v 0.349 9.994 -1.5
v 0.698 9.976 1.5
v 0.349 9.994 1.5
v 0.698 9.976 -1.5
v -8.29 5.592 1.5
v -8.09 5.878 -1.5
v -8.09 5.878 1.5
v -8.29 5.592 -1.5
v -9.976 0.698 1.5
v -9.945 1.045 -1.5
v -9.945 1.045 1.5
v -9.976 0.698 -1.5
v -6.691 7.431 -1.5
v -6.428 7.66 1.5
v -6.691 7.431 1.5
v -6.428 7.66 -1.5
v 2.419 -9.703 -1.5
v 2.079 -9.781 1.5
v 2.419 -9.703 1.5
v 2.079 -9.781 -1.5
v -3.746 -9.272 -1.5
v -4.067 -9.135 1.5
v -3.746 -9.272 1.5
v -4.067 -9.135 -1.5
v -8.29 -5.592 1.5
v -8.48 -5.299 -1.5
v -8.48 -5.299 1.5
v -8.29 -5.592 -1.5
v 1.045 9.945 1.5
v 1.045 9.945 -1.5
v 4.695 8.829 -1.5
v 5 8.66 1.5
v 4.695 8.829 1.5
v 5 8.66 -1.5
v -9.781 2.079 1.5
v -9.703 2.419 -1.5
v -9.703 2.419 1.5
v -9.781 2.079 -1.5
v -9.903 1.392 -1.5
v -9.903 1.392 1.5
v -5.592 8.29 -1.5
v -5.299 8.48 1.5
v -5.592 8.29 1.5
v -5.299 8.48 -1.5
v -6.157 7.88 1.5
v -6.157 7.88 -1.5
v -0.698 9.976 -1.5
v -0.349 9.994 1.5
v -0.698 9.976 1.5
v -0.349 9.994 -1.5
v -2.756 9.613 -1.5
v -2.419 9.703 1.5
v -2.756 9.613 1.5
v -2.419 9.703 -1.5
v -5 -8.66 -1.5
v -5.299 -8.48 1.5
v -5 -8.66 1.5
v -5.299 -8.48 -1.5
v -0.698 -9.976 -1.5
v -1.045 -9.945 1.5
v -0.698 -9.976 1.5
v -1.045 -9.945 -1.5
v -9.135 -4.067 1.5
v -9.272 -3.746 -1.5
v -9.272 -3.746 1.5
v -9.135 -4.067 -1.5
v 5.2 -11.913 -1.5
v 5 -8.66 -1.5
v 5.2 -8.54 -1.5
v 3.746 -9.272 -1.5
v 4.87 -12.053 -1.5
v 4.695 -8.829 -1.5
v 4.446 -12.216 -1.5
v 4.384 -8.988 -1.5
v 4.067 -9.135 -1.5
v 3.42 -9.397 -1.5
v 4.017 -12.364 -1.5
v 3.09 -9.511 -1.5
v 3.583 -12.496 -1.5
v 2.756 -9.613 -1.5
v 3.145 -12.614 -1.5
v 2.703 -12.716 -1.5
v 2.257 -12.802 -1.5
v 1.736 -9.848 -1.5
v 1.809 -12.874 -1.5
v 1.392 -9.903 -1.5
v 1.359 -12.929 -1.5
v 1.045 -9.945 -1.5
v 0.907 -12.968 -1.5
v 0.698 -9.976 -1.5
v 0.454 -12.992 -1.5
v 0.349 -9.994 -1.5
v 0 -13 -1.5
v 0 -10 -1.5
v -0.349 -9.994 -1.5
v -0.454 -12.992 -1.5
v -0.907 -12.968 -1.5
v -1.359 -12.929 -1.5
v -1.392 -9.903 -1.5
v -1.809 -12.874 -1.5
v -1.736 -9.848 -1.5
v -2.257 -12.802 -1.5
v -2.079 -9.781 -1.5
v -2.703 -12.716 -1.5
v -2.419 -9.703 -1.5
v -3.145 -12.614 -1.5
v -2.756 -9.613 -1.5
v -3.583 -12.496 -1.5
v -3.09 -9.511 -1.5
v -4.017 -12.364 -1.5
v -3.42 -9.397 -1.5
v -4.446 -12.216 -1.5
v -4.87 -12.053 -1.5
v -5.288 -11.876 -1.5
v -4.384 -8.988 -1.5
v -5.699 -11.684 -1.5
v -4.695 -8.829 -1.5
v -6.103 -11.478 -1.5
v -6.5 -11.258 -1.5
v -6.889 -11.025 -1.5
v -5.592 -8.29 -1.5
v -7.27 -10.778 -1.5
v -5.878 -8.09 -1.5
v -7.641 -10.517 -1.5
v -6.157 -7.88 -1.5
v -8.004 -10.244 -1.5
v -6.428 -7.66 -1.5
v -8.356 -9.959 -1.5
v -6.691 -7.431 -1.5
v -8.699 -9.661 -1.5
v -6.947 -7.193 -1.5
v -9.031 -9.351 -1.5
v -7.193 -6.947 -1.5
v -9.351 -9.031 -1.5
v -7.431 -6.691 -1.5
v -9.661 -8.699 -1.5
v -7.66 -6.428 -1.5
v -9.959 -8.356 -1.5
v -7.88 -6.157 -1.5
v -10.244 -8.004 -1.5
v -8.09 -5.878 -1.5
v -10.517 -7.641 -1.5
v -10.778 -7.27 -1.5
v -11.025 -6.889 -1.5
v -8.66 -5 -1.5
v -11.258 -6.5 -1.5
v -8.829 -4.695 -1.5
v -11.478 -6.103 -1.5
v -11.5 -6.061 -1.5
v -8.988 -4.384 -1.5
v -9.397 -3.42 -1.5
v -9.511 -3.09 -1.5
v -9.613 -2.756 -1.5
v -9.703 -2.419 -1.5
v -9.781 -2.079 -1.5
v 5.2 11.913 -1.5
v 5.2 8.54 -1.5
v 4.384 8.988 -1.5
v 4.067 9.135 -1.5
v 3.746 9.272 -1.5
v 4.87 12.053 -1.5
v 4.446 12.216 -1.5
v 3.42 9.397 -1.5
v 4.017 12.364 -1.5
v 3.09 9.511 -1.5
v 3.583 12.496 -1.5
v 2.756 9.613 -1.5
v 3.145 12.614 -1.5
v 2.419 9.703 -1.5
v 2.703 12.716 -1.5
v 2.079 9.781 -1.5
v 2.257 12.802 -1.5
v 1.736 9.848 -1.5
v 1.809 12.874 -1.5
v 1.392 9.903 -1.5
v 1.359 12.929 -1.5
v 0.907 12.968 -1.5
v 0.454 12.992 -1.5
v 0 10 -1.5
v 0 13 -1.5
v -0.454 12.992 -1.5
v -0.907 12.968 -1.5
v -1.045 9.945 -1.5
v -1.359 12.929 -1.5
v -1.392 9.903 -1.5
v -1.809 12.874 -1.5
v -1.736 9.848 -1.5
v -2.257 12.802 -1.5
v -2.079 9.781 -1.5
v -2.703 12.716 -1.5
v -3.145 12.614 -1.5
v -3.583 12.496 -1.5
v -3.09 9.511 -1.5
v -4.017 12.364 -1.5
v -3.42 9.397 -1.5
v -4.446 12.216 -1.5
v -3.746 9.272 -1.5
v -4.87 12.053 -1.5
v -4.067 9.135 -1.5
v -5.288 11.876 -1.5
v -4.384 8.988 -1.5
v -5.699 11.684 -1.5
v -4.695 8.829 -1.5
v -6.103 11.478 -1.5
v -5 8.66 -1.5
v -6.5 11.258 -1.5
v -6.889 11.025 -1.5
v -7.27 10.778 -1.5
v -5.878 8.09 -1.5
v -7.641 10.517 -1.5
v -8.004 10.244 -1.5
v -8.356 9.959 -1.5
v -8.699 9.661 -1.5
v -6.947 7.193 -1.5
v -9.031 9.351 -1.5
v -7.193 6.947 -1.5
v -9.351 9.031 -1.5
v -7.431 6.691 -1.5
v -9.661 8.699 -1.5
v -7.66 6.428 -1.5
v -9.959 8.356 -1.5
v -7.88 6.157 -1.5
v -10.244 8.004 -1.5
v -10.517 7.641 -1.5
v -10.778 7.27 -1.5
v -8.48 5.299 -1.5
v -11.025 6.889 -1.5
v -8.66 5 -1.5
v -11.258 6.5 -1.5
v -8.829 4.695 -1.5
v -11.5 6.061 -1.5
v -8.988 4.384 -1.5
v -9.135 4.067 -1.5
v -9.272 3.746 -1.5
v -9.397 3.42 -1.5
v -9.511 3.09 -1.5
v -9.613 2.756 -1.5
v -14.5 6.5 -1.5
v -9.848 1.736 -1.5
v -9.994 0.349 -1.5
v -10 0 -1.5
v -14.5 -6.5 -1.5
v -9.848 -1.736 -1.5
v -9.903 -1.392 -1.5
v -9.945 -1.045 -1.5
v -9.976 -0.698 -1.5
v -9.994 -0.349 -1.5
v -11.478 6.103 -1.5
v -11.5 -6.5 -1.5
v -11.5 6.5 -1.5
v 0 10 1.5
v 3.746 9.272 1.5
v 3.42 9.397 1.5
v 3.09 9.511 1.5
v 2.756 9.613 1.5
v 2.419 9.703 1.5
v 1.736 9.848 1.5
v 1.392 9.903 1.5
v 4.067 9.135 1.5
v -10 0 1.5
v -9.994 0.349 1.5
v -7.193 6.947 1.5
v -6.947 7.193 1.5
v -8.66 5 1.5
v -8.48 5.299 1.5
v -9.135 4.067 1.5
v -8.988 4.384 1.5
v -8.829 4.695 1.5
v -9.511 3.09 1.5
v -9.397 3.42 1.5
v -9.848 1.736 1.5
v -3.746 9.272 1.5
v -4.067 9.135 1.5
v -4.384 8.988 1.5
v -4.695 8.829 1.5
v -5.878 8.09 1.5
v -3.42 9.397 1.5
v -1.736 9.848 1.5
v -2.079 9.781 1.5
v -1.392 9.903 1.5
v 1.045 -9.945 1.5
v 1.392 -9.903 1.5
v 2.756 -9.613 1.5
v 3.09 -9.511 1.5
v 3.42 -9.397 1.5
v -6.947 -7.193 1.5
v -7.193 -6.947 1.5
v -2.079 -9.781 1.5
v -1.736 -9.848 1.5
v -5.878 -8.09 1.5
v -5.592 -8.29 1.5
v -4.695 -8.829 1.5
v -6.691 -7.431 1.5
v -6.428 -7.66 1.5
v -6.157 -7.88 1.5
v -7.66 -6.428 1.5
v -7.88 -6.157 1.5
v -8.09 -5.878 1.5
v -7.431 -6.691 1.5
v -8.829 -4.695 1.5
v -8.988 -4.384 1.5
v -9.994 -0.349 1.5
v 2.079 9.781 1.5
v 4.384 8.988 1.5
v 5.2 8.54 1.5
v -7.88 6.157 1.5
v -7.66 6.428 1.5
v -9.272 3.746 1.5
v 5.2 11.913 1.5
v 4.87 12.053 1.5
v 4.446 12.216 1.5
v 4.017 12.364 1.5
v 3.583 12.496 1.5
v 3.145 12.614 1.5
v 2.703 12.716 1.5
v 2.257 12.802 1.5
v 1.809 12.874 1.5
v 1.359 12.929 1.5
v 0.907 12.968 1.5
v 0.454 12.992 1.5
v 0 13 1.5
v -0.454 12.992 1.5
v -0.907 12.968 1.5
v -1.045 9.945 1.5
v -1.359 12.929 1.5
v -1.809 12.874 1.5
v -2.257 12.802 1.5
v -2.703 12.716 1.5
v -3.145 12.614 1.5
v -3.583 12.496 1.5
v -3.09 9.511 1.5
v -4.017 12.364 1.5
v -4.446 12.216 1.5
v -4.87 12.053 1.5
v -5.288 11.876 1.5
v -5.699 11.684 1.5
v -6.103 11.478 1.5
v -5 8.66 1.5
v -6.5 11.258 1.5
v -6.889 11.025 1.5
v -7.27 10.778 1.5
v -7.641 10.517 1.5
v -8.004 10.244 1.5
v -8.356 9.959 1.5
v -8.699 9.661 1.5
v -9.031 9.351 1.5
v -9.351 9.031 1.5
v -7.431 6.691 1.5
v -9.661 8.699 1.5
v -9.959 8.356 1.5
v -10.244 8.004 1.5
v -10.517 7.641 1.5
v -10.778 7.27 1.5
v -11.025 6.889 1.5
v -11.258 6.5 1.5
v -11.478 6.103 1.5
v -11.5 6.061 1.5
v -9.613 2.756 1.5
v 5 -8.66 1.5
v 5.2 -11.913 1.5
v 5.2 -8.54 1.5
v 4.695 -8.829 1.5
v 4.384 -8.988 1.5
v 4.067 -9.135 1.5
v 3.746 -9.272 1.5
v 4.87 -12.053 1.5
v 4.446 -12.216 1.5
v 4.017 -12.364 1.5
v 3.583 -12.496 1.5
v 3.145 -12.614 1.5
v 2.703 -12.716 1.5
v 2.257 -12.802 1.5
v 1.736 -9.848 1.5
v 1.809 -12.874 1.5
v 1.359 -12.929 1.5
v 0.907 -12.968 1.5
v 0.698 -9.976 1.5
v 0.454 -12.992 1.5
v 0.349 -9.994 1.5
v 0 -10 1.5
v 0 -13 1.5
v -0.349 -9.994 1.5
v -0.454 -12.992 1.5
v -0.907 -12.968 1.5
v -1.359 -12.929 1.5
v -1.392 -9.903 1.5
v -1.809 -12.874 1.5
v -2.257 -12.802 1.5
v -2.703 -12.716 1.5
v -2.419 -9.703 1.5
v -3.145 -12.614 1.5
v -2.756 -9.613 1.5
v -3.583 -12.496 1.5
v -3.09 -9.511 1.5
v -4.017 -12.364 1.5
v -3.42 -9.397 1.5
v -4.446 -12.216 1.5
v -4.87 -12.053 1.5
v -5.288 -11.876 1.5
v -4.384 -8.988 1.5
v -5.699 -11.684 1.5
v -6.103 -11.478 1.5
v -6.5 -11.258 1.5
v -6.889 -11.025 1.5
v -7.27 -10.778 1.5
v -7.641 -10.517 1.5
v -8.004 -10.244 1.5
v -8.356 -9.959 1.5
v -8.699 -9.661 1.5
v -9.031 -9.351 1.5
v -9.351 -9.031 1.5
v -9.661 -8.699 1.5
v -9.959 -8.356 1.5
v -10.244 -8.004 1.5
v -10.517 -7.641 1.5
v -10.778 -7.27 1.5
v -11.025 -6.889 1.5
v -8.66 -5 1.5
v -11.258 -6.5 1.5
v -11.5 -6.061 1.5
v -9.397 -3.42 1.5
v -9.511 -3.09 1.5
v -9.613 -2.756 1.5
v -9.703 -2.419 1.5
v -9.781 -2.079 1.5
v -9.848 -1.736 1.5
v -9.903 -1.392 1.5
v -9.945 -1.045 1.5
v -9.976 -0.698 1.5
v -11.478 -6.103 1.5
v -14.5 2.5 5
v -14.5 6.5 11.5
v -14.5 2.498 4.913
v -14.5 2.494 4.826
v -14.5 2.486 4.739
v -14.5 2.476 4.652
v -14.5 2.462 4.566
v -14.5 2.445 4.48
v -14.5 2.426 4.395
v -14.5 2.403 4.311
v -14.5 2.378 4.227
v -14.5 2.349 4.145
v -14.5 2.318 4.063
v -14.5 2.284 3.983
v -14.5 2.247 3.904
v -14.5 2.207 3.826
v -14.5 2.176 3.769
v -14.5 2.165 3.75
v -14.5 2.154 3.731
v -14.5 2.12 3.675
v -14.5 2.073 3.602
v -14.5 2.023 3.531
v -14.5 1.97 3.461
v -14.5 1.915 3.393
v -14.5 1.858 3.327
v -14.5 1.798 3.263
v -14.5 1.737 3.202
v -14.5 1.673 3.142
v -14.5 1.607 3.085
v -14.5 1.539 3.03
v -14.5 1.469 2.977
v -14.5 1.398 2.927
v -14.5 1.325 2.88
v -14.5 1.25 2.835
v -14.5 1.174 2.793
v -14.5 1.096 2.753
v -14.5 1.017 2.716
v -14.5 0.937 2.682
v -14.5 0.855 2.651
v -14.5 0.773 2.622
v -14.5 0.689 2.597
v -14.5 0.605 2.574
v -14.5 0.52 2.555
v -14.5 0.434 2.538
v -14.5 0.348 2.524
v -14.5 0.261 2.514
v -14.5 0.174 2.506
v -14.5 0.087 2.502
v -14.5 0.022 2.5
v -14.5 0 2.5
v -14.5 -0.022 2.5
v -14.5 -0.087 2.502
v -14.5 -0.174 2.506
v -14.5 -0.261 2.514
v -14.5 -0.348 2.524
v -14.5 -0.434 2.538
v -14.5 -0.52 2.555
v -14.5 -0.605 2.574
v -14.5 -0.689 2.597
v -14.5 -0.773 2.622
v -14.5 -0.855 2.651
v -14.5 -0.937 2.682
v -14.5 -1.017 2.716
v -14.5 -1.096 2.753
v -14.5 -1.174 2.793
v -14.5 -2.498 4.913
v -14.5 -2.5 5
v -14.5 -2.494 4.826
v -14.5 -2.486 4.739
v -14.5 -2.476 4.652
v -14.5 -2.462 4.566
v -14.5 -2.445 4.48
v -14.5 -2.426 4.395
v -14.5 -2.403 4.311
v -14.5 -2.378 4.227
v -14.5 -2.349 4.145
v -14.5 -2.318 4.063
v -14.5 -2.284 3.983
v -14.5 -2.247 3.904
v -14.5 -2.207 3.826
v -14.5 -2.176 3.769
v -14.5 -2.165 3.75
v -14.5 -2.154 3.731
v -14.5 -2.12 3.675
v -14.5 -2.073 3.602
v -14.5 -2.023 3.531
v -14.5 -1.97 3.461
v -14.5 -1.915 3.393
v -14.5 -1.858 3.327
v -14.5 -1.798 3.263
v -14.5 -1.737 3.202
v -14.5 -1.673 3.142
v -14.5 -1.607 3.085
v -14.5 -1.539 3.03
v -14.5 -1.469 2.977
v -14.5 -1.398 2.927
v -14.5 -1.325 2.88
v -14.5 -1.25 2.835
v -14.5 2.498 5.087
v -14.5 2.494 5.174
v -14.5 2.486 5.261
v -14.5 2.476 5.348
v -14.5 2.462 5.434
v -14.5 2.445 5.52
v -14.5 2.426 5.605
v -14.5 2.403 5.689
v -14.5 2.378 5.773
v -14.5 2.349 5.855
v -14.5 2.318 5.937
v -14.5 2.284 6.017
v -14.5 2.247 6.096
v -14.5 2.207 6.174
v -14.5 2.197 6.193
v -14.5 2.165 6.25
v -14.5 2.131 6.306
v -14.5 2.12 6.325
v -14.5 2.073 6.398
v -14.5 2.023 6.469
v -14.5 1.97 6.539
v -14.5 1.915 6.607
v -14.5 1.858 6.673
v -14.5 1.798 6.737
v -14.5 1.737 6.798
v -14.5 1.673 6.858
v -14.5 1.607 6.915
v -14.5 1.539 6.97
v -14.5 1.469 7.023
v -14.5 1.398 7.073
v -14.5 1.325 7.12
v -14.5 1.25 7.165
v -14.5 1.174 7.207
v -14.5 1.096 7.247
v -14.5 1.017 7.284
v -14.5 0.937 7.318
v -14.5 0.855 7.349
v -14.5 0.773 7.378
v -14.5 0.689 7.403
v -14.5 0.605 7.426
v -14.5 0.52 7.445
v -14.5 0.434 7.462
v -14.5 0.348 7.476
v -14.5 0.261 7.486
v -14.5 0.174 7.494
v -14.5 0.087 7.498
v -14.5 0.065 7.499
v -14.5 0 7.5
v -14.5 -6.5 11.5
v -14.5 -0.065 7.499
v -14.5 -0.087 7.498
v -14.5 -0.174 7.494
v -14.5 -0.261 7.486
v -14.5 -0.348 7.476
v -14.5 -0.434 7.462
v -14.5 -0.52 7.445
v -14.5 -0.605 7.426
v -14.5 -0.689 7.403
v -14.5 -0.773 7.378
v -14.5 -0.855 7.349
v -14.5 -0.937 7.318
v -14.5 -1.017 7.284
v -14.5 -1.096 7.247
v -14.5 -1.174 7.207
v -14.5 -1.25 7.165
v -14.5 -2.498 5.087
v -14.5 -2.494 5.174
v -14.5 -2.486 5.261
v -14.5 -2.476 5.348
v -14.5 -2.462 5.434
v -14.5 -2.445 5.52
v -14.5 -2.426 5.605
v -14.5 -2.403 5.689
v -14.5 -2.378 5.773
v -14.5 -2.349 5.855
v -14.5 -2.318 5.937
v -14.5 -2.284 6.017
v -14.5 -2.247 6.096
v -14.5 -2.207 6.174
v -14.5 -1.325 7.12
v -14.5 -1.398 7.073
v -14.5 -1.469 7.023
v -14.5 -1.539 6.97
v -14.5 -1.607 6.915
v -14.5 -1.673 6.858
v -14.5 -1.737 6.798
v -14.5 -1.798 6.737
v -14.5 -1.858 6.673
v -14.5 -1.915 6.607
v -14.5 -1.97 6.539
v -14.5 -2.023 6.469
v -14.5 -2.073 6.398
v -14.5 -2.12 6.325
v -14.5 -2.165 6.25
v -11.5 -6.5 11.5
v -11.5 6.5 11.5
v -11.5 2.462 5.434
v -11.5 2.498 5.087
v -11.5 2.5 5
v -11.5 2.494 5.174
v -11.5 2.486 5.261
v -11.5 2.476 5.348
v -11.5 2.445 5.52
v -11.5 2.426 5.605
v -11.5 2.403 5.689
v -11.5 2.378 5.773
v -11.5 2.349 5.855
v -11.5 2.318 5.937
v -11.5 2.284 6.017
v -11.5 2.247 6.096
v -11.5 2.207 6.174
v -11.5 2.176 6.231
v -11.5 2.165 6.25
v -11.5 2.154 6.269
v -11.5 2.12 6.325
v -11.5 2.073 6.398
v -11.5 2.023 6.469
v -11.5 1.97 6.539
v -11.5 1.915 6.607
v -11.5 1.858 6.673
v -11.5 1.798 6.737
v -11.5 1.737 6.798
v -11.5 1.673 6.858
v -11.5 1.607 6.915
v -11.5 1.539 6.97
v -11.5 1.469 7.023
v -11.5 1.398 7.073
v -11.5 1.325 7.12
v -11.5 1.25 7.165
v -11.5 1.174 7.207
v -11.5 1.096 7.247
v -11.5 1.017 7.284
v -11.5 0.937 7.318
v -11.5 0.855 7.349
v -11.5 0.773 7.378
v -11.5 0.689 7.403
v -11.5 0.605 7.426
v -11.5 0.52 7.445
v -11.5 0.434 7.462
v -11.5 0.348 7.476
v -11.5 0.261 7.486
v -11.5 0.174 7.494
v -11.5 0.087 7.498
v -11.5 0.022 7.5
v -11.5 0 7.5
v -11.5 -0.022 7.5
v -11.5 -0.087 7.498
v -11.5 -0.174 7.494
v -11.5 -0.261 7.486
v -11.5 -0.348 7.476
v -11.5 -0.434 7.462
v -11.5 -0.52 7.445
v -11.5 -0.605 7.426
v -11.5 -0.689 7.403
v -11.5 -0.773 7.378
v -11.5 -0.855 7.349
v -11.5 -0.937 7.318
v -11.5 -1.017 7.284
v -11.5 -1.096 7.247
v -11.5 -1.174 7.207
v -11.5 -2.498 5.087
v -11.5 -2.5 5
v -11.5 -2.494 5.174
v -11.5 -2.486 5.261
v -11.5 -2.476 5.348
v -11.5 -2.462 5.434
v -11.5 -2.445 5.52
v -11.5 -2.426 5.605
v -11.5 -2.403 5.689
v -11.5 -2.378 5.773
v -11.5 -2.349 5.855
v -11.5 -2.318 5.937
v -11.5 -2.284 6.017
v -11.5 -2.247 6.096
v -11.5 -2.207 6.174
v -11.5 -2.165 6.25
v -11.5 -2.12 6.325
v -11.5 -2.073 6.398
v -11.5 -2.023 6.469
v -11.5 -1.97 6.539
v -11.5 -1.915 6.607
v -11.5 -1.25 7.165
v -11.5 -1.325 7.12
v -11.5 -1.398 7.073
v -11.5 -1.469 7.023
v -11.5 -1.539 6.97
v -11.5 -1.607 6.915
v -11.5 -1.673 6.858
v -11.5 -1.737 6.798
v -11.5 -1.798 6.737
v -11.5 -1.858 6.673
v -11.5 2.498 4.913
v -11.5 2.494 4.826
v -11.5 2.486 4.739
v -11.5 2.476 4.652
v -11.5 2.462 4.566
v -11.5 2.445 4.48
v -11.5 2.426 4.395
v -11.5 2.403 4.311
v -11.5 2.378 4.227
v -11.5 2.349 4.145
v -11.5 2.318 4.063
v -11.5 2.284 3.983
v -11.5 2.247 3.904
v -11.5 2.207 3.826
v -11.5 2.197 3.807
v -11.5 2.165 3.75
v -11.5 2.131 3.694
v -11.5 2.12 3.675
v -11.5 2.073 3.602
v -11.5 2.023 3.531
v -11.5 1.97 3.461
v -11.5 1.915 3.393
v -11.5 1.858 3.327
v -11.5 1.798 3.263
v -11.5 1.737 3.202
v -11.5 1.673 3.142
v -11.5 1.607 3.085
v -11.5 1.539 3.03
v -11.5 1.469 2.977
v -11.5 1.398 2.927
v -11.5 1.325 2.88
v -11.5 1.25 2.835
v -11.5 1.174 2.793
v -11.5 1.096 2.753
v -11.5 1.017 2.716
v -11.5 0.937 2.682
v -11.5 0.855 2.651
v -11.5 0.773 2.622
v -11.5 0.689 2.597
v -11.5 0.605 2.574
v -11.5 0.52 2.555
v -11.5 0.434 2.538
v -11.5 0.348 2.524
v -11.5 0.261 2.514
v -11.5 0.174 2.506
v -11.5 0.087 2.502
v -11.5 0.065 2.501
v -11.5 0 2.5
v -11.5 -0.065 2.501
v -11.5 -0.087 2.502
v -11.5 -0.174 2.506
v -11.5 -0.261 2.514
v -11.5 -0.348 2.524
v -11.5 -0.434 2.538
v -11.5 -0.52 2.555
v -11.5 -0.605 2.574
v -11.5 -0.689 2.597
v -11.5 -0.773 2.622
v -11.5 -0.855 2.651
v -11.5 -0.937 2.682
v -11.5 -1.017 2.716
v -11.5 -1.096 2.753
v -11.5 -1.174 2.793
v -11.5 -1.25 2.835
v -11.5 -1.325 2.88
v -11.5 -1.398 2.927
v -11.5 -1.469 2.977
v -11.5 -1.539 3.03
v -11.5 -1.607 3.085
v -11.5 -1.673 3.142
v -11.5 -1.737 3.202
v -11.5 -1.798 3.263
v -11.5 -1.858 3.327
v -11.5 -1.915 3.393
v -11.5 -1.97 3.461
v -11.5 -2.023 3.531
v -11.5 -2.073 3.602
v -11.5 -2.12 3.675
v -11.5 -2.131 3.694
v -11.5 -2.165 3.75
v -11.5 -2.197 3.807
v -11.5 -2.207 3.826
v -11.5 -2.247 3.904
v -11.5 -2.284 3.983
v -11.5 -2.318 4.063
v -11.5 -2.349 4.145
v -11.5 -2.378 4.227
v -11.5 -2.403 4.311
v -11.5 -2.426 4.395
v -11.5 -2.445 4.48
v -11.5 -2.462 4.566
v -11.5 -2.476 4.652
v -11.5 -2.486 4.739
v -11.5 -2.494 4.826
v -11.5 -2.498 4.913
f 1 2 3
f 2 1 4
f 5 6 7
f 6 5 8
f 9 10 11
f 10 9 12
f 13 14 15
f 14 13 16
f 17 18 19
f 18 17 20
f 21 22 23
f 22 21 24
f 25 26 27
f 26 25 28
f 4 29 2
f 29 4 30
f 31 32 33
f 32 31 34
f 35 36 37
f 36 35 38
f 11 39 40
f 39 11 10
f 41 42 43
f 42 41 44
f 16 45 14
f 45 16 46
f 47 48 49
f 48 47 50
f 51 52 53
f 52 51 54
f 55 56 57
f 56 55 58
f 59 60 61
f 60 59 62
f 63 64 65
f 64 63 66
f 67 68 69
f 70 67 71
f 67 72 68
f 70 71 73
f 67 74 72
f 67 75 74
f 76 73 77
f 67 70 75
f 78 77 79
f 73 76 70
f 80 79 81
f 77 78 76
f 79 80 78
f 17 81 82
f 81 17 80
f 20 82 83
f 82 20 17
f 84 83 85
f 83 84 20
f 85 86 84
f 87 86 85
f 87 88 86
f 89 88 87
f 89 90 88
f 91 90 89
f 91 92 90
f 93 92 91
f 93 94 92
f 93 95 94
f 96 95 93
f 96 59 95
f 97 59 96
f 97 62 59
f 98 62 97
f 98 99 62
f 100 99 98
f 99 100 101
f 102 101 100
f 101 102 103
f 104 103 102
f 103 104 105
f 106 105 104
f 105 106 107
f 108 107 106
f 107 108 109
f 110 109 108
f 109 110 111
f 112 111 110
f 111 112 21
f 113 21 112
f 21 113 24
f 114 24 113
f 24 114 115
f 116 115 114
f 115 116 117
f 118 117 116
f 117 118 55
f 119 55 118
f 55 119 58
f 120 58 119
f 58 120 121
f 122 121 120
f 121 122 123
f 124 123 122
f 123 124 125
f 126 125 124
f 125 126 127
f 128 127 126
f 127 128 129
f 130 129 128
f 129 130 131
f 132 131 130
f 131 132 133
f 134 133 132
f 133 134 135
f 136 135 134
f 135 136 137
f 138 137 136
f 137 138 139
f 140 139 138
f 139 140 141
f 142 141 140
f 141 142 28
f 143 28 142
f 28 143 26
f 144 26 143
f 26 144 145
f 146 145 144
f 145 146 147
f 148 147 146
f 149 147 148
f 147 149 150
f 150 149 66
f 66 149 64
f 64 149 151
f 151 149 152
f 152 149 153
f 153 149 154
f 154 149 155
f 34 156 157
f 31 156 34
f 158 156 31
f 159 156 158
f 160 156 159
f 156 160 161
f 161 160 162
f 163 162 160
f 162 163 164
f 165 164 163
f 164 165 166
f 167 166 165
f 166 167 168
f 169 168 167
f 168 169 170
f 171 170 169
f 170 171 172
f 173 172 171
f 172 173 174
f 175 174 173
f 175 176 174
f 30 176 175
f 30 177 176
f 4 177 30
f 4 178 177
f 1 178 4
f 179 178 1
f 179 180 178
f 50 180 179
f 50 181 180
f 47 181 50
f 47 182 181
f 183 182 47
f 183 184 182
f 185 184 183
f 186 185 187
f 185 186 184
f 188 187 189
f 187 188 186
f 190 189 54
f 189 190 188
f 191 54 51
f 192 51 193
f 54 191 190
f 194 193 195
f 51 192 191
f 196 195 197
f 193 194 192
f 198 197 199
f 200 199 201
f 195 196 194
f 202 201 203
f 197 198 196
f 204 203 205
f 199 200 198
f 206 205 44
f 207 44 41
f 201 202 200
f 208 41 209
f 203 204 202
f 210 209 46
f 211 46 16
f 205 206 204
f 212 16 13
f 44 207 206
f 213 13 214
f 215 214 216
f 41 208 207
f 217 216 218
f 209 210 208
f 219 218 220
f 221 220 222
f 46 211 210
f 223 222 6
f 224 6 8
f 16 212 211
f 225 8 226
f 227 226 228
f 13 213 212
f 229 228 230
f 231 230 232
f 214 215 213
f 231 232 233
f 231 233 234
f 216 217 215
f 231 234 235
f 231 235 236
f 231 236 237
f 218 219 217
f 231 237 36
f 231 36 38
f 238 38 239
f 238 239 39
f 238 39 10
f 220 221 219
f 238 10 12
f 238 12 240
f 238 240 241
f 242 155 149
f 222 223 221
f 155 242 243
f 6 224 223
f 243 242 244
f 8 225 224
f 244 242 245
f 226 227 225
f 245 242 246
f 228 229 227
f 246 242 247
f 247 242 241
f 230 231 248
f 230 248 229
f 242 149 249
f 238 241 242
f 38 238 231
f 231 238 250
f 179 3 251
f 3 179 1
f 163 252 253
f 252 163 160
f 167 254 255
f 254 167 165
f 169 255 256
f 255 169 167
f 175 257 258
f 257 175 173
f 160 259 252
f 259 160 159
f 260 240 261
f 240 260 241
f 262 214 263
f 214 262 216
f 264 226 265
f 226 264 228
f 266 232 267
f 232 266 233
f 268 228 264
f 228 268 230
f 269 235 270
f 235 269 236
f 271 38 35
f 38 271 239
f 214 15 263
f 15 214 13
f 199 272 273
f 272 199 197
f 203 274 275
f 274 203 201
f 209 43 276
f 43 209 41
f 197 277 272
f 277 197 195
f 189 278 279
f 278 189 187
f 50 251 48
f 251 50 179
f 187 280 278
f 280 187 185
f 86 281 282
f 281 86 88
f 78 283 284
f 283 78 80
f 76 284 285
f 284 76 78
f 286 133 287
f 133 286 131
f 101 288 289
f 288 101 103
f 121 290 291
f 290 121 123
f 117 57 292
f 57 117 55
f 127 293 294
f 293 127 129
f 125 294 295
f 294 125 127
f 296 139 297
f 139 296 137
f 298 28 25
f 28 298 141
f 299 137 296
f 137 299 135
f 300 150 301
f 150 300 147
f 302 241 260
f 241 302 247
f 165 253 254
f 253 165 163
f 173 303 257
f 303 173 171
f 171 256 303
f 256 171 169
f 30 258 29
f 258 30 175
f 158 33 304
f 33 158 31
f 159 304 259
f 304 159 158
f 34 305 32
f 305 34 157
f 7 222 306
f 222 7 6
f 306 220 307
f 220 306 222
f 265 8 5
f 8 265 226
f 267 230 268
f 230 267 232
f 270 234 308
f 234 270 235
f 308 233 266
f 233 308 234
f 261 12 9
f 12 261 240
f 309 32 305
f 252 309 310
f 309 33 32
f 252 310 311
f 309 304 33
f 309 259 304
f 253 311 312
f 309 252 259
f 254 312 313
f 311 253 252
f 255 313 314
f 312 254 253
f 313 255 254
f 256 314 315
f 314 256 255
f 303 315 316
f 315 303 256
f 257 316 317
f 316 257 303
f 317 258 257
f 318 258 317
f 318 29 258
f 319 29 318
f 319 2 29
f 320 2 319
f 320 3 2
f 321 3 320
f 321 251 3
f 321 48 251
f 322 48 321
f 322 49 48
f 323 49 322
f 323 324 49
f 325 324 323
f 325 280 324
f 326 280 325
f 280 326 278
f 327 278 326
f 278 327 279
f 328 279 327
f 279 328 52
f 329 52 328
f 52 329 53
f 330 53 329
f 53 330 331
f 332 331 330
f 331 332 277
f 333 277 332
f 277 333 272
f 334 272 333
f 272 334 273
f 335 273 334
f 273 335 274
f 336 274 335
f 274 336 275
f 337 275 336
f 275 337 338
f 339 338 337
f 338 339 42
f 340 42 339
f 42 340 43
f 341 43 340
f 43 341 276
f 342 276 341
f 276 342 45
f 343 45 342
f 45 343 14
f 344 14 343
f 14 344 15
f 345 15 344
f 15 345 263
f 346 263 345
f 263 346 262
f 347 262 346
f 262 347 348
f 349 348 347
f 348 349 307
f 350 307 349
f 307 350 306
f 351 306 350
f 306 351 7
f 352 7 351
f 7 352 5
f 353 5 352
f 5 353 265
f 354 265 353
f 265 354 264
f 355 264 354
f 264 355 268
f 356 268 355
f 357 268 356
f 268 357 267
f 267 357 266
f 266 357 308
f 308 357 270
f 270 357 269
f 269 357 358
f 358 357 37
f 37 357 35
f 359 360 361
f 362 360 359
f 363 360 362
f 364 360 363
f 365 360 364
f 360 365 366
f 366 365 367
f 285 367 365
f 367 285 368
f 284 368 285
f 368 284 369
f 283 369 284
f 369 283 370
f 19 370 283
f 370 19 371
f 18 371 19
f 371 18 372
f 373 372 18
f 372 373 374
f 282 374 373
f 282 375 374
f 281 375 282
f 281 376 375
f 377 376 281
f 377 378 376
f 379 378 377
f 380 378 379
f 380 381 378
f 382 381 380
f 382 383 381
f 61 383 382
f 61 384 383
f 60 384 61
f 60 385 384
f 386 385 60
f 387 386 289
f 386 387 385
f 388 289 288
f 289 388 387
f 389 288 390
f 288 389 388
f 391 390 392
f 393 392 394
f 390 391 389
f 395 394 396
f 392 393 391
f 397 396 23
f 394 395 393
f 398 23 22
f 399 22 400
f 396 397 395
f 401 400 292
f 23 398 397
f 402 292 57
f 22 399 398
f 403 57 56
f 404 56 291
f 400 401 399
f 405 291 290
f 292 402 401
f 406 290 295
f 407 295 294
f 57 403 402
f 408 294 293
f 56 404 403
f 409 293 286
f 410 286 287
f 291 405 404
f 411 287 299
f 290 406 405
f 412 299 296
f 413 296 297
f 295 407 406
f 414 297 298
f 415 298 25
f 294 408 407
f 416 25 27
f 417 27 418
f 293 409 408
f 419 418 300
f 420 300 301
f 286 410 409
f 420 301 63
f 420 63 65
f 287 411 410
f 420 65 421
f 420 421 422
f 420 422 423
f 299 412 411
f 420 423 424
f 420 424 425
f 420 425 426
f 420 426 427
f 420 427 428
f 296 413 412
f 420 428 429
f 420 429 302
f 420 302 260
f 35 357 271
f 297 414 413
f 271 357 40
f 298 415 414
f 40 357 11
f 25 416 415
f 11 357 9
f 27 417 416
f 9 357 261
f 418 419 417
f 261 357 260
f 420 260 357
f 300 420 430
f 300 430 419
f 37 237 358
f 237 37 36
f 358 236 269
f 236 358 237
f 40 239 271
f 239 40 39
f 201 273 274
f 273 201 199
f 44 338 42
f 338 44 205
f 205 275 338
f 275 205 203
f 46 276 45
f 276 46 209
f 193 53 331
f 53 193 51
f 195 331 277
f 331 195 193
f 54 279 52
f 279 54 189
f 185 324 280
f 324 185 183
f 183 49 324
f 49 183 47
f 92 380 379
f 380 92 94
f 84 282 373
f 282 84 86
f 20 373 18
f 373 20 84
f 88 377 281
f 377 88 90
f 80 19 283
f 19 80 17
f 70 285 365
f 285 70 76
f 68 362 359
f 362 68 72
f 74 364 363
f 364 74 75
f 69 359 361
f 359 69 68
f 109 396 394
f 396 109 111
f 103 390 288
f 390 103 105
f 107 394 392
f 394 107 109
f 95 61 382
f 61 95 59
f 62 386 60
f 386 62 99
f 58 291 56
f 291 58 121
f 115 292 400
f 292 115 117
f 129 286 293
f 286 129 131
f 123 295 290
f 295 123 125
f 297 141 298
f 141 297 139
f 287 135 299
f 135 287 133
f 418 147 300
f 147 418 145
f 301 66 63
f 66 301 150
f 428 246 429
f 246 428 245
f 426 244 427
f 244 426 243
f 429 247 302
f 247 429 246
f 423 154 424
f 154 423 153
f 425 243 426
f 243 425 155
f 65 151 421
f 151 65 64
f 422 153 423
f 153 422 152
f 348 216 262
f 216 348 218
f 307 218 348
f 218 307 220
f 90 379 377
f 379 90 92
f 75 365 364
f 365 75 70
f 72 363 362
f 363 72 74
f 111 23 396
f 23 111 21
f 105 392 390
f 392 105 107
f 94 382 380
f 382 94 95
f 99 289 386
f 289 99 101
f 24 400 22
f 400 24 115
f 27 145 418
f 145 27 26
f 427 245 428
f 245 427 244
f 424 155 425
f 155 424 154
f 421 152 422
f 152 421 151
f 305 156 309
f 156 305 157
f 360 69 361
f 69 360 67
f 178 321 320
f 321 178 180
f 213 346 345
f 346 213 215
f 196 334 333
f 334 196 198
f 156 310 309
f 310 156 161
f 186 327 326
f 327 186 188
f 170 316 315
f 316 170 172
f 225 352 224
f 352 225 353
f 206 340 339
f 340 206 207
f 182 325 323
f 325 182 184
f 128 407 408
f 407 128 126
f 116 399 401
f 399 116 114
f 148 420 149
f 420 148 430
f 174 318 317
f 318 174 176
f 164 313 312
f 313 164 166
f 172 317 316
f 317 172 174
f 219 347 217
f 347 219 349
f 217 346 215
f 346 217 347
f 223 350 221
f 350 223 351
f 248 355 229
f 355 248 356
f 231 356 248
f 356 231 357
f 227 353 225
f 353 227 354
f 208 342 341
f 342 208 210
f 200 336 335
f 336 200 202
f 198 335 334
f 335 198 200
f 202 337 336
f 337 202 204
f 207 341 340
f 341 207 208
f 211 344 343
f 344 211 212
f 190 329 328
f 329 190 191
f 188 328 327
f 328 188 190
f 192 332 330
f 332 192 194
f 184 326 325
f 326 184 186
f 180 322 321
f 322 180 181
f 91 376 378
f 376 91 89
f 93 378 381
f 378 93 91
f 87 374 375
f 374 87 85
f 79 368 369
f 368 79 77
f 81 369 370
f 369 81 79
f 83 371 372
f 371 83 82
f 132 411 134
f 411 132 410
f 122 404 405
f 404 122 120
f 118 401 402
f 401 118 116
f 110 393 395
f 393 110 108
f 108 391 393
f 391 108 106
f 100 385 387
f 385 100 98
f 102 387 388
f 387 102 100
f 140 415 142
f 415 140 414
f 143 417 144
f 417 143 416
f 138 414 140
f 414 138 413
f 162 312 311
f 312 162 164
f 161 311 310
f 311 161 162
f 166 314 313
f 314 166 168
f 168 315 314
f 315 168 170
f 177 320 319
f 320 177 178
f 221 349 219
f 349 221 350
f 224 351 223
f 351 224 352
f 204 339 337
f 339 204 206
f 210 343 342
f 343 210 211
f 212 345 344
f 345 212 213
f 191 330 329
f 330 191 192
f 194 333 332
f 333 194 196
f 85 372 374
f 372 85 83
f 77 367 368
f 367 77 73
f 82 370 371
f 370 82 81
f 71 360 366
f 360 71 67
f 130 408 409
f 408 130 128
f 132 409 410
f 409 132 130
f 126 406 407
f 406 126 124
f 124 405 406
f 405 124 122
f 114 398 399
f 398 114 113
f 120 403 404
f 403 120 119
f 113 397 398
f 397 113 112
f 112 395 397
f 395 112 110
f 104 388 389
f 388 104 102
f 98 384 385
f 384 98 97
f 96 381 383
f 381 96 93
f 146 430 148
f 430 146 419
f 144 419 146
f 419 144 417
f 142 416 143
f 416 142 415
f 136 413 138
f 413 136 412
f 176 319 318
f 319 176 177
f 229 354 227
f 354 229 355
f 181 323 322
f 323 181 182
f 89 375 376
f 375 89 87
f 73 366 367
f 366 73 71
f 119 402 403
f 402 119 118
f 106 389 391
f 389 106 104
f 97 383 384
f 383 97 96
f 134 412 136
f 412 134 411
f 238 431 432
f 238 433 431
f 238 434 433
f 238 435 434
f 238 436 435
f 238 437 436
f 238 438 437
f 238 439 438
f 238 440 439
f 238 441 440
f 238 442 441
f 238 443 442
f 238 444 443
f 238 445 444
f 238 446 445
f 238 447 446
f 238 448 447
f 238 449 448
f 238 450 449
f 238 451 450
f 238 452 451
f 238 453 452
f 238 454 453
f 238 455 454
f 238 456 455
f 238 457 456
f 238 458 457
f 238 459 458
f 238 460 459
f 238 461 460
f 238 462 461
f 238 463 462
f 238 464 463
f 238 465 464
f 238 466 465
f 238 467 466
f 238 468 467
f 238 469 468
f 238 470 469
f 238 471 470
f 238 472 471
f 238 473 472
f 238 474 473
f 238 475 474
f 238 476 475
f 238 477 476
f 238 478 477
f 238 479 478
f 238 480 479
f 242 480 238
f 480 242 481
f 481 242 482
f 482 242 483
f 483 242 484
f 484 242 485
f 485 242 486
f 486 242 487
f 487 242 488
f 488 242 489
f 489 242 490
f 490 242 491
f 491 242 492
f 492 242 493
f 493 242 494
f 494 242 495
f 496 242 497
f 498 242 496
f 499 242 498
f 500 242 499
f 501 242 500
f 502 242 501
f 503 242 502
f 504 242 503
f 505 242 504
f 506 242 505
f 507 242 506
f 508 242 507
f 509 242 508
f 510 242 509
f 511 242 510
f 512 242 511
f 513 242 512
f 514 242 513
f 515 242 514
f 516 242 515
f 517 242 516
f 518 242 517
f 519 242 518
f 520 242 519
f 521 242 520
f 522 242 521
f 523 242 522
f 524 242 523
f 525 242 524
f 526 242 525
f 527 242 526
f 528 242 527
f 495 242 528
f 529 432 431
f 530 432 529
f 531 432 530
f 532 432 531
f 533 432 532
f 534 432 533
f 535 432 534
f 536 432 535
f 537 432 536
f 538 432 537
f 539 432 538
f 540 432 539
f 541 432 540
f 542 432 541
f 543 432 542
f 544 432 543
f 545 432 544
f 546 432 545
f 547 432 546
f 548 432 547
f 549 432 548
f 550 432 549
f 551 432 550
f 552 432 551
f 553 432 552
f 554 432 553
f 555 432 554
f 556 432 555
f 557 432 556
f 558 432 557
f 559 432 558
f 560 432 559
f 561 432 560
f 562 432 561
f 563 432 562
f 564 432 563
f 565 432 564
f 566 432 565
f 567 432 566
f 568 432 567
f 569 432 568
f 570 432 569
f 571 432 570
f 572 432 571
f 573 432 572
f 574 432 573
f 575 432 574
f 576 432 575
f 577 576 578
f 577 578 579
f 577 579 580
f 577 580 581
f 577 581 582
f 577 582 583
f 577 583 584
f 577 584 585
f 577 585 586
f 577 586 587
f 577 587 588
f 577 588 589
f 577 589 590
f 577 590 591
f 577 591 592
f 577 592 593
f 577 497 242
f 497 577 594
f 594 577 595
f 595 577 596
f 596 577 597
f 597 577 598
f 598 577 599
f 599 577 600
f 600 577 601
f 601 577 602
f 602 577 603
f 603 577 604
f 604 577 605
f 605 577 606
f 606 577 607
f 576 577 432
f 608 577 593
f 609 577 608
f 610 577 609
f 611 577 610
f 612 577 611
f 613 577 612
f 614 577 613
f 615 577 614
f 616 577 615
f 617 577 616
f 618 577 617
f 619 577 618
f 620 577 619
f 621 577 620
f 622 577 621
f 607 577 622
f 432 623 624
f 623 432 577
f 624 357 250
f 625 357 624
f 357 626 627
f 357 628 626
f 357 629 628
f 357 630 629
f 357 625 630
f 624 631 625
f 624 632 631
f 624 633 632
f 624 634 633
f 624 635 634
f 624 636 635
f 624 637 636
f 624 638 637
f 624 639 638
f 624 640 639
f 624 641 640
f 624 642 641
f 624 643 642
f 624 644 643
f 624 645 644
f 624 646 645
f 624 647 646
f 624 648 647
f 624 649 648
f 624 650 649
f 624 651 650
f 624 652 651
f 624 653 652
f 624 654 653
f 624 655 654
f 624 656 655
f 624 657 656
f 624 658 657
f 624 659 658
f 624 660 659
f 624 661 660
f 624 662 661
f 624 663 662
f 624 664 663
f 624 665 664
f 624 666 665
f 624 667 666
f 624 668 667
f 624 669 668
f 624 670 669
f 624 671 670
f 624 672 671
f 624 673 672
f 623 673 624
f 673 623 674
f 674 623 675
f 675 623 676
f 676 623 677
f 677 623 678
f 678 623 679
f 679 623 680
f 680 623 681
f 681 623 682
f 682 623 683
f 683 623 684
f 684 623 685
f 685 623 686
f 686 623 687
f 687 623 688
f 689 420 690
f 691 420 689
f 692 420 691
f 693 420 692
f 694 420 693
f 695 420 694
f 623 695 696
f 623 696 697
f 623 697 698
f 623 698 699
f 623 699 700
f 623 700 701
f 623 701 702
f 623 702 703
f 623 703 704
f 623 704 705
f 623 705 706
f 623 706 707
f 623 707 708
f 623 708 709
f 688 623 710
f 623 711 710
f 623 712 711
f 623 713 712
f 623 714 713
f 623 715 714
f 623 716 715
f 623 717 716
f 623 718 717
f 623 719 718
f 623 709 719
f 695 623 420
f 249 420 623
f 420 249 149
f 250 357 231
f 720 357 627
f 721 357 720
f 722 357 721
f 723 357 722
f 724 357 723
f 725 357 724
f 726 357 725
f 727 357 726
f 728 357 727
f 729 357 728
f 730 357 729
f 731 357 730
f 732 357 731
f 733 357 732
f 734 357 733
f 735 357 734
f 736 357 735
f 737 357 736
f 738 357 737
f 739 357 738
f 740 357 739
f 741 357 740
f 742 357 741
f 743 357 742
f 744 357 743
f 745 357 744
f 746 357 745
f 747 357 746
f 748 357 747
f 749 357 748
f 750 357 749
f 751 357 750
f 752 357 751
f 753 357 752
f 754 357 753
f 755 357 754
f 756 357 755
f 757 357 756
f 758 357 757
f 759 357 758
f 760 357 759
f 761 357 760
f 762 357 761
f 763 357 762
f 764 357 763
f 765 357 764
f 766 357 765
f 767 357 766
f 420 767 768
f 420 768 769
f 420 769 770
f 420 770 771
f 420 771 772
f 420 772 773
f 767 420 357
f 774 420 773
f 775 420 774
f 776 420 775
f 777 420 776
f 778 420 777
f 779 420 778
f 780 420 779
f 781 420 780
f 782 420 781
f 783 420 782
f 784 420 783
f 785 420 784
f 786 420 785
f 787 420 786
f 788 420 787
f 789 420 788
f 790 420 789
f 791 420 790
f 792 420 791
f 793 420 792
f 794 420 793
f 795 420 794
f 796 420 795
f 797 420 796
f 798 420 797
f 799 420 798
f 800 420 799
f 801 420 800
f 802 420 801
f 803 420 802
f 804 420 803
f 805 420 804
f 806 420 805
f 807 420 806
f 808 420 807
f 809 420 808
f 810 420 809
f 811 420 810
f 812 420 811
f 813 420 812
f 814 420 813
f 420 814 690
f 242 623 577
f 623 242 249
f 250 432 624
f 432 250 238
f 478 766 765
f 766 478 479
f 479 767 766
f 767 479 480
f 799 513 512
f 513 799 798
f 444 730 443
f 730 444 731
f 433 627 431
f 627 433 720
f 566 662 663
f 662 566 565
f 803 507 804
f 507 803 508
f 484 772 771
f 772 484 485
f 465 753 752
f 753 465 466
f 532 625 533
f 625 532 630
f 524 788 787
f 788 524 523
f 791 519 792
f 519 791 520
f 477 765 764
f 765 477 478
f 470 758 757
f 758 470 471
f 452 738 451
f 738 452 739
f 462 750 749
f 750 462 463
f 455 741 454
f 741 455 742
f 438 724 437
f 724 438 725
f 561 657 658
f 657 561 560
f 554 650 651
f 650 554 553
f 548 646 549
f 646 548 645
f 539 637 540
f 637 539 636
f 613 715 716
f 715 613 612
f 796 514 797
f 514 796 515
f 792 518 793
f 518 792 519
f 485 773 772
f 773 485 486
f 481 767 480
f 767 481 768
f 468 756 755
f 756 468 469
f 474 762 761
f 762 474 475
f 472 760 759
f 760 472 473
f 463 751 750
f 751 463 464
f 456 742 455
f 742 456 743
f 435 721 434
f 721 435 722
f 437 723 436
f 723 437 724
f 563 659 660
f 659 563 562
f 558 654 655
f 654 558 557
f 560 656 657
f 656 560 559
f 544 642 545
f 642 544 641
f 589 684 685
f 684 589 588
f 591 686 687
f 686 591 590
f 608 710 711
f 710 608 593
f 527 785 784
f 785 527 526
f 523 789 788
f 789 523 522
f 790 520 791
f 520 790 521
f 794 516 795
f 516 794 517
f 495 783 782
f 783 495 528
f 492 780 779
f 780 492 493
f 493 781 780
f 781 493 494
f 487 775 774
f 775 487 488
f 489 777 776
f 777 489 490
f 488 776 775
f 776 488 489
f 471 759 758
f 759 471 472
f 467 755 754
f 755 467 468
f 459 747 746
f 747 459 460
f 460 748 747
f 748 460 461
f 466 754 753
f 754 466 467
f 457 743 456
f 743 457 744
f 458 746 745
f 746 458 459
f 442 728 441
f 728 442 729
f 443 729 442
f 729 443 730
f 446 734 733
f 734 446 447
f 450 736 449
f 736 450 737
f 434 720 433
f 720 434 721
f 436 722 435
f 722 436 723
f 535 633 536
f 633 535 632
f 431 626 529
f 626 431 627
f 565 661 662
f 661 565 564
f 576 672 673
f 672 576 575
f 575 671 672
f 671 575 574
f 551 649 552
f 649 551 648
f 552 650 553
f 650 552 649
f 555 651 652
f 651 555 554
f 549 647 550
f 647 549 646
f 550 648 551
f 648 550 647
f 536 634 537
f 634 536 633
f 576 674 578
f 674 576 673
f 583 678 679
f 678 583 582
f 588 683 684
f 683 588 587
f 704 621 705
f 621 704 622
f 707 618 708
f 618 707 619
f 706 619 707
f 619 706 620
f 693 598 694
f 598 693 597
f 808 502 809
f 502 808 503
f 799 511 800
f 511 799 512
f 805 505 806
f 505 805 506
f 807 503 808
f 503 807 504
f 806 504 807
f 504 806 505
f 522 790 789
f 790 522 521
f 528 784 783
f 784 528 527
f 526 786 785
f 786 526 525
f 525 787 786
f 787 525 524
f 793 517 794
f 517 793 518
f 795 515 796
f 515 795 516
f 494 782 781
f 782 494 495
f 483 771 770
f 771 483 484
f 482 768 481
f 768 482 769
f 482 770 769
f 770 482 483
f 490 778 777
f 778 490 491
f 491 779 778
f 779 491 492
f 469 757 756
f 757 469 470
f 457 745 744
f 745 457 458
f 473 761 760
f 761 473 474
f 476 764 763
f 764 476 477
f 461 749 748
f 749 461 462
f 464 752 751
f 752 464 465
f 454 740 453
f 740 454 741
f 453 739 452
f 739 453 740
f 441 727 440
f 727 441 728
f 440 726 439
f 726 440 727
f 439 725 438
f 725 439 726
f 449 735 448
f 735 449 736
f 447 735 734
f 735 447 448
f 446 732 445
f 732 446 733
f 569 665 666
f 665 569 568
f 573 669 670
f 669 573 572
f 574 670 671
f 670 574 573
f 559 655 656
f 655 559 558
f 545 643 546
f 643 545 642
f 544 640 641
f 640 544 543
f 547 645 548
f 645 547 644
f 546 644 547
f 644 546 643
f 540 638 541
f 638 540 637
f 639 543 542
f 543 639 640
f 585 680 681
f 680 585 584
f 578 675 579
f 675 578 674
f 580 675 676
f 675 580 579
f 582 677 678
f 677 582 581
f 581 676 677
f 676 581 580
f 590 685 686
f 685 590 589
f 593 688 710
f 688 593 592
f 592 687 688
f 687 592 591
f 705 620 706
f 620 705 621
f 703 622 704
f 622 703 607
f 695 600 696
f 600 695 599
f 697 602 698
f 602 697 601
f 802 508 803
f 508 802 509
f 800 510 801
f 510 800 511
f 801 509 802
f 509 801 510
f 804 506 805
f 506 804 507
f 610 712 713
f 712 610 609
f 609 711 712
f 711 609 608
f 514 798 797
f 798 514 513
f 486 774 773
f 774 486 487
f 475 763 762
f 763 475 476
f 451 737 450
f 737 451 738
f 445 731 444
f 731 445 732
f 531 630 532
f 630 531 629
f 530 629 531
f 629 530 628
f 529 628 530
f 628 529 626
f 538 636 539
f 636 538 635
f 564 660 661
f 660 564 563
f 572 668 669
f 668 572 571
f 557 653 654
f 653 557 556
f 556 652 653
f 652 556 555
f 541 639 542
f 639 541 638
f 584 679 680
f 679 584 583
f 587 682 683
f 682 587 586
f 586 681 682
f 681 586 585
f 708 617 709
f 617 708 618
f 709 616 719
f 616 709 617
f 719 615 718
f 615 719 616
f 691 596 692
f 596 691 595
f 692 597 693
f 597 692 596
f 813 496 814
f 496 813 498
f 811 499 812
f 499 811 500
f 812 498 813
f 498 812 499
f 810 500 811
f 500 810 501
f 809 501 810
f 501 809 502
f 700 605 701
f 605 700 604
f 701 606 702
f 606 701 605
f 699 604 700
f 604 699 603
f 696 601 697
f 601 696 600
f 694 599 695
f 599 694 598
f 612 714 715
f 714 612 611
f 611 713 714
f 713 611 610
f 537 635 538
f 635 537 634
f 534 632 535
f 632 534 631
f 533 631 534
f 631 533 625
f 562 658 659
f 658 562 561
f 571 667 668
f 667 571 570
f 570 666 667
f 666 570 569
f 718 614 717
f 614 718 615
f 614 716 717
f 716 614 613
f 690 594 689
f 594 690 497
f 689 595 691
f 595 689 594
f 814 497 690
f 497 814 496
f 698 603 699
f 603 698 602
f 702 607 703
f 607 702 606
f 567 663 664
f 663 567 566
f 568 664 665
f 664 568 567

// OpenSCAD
// Define all parameter
tupeDiameter=20;
materialWidth=3;
drill=5;
percentOpen=30;


// Clip
outsideDiameter=(tupeDiameter+materialWidth*2);
difference() {
cylinder(d=outsideDiameter, h=materialWidth, center=true, $fn=180);
    union() {
        cylinder(d=(tupeDiameter), h=materialWidth, center=true, $fn=180);
        translate([outsideDiameter*(100-percentOpen)/100,0,0]) cube([outsideDiameter,outsideDiameter,materialWidth*2], center=true);
    }
}
// Mount to the Sideboard

translate([-outsideDiameter/2,0,drill]) difference() {
cube([materialWidth,drill*2+materialWidth,drill*2+materialWidth], center=true);
    rotate([0,90,0]) cylinder(d=(drill), h=materialWidth*2, center=true, $fn=180);
}
